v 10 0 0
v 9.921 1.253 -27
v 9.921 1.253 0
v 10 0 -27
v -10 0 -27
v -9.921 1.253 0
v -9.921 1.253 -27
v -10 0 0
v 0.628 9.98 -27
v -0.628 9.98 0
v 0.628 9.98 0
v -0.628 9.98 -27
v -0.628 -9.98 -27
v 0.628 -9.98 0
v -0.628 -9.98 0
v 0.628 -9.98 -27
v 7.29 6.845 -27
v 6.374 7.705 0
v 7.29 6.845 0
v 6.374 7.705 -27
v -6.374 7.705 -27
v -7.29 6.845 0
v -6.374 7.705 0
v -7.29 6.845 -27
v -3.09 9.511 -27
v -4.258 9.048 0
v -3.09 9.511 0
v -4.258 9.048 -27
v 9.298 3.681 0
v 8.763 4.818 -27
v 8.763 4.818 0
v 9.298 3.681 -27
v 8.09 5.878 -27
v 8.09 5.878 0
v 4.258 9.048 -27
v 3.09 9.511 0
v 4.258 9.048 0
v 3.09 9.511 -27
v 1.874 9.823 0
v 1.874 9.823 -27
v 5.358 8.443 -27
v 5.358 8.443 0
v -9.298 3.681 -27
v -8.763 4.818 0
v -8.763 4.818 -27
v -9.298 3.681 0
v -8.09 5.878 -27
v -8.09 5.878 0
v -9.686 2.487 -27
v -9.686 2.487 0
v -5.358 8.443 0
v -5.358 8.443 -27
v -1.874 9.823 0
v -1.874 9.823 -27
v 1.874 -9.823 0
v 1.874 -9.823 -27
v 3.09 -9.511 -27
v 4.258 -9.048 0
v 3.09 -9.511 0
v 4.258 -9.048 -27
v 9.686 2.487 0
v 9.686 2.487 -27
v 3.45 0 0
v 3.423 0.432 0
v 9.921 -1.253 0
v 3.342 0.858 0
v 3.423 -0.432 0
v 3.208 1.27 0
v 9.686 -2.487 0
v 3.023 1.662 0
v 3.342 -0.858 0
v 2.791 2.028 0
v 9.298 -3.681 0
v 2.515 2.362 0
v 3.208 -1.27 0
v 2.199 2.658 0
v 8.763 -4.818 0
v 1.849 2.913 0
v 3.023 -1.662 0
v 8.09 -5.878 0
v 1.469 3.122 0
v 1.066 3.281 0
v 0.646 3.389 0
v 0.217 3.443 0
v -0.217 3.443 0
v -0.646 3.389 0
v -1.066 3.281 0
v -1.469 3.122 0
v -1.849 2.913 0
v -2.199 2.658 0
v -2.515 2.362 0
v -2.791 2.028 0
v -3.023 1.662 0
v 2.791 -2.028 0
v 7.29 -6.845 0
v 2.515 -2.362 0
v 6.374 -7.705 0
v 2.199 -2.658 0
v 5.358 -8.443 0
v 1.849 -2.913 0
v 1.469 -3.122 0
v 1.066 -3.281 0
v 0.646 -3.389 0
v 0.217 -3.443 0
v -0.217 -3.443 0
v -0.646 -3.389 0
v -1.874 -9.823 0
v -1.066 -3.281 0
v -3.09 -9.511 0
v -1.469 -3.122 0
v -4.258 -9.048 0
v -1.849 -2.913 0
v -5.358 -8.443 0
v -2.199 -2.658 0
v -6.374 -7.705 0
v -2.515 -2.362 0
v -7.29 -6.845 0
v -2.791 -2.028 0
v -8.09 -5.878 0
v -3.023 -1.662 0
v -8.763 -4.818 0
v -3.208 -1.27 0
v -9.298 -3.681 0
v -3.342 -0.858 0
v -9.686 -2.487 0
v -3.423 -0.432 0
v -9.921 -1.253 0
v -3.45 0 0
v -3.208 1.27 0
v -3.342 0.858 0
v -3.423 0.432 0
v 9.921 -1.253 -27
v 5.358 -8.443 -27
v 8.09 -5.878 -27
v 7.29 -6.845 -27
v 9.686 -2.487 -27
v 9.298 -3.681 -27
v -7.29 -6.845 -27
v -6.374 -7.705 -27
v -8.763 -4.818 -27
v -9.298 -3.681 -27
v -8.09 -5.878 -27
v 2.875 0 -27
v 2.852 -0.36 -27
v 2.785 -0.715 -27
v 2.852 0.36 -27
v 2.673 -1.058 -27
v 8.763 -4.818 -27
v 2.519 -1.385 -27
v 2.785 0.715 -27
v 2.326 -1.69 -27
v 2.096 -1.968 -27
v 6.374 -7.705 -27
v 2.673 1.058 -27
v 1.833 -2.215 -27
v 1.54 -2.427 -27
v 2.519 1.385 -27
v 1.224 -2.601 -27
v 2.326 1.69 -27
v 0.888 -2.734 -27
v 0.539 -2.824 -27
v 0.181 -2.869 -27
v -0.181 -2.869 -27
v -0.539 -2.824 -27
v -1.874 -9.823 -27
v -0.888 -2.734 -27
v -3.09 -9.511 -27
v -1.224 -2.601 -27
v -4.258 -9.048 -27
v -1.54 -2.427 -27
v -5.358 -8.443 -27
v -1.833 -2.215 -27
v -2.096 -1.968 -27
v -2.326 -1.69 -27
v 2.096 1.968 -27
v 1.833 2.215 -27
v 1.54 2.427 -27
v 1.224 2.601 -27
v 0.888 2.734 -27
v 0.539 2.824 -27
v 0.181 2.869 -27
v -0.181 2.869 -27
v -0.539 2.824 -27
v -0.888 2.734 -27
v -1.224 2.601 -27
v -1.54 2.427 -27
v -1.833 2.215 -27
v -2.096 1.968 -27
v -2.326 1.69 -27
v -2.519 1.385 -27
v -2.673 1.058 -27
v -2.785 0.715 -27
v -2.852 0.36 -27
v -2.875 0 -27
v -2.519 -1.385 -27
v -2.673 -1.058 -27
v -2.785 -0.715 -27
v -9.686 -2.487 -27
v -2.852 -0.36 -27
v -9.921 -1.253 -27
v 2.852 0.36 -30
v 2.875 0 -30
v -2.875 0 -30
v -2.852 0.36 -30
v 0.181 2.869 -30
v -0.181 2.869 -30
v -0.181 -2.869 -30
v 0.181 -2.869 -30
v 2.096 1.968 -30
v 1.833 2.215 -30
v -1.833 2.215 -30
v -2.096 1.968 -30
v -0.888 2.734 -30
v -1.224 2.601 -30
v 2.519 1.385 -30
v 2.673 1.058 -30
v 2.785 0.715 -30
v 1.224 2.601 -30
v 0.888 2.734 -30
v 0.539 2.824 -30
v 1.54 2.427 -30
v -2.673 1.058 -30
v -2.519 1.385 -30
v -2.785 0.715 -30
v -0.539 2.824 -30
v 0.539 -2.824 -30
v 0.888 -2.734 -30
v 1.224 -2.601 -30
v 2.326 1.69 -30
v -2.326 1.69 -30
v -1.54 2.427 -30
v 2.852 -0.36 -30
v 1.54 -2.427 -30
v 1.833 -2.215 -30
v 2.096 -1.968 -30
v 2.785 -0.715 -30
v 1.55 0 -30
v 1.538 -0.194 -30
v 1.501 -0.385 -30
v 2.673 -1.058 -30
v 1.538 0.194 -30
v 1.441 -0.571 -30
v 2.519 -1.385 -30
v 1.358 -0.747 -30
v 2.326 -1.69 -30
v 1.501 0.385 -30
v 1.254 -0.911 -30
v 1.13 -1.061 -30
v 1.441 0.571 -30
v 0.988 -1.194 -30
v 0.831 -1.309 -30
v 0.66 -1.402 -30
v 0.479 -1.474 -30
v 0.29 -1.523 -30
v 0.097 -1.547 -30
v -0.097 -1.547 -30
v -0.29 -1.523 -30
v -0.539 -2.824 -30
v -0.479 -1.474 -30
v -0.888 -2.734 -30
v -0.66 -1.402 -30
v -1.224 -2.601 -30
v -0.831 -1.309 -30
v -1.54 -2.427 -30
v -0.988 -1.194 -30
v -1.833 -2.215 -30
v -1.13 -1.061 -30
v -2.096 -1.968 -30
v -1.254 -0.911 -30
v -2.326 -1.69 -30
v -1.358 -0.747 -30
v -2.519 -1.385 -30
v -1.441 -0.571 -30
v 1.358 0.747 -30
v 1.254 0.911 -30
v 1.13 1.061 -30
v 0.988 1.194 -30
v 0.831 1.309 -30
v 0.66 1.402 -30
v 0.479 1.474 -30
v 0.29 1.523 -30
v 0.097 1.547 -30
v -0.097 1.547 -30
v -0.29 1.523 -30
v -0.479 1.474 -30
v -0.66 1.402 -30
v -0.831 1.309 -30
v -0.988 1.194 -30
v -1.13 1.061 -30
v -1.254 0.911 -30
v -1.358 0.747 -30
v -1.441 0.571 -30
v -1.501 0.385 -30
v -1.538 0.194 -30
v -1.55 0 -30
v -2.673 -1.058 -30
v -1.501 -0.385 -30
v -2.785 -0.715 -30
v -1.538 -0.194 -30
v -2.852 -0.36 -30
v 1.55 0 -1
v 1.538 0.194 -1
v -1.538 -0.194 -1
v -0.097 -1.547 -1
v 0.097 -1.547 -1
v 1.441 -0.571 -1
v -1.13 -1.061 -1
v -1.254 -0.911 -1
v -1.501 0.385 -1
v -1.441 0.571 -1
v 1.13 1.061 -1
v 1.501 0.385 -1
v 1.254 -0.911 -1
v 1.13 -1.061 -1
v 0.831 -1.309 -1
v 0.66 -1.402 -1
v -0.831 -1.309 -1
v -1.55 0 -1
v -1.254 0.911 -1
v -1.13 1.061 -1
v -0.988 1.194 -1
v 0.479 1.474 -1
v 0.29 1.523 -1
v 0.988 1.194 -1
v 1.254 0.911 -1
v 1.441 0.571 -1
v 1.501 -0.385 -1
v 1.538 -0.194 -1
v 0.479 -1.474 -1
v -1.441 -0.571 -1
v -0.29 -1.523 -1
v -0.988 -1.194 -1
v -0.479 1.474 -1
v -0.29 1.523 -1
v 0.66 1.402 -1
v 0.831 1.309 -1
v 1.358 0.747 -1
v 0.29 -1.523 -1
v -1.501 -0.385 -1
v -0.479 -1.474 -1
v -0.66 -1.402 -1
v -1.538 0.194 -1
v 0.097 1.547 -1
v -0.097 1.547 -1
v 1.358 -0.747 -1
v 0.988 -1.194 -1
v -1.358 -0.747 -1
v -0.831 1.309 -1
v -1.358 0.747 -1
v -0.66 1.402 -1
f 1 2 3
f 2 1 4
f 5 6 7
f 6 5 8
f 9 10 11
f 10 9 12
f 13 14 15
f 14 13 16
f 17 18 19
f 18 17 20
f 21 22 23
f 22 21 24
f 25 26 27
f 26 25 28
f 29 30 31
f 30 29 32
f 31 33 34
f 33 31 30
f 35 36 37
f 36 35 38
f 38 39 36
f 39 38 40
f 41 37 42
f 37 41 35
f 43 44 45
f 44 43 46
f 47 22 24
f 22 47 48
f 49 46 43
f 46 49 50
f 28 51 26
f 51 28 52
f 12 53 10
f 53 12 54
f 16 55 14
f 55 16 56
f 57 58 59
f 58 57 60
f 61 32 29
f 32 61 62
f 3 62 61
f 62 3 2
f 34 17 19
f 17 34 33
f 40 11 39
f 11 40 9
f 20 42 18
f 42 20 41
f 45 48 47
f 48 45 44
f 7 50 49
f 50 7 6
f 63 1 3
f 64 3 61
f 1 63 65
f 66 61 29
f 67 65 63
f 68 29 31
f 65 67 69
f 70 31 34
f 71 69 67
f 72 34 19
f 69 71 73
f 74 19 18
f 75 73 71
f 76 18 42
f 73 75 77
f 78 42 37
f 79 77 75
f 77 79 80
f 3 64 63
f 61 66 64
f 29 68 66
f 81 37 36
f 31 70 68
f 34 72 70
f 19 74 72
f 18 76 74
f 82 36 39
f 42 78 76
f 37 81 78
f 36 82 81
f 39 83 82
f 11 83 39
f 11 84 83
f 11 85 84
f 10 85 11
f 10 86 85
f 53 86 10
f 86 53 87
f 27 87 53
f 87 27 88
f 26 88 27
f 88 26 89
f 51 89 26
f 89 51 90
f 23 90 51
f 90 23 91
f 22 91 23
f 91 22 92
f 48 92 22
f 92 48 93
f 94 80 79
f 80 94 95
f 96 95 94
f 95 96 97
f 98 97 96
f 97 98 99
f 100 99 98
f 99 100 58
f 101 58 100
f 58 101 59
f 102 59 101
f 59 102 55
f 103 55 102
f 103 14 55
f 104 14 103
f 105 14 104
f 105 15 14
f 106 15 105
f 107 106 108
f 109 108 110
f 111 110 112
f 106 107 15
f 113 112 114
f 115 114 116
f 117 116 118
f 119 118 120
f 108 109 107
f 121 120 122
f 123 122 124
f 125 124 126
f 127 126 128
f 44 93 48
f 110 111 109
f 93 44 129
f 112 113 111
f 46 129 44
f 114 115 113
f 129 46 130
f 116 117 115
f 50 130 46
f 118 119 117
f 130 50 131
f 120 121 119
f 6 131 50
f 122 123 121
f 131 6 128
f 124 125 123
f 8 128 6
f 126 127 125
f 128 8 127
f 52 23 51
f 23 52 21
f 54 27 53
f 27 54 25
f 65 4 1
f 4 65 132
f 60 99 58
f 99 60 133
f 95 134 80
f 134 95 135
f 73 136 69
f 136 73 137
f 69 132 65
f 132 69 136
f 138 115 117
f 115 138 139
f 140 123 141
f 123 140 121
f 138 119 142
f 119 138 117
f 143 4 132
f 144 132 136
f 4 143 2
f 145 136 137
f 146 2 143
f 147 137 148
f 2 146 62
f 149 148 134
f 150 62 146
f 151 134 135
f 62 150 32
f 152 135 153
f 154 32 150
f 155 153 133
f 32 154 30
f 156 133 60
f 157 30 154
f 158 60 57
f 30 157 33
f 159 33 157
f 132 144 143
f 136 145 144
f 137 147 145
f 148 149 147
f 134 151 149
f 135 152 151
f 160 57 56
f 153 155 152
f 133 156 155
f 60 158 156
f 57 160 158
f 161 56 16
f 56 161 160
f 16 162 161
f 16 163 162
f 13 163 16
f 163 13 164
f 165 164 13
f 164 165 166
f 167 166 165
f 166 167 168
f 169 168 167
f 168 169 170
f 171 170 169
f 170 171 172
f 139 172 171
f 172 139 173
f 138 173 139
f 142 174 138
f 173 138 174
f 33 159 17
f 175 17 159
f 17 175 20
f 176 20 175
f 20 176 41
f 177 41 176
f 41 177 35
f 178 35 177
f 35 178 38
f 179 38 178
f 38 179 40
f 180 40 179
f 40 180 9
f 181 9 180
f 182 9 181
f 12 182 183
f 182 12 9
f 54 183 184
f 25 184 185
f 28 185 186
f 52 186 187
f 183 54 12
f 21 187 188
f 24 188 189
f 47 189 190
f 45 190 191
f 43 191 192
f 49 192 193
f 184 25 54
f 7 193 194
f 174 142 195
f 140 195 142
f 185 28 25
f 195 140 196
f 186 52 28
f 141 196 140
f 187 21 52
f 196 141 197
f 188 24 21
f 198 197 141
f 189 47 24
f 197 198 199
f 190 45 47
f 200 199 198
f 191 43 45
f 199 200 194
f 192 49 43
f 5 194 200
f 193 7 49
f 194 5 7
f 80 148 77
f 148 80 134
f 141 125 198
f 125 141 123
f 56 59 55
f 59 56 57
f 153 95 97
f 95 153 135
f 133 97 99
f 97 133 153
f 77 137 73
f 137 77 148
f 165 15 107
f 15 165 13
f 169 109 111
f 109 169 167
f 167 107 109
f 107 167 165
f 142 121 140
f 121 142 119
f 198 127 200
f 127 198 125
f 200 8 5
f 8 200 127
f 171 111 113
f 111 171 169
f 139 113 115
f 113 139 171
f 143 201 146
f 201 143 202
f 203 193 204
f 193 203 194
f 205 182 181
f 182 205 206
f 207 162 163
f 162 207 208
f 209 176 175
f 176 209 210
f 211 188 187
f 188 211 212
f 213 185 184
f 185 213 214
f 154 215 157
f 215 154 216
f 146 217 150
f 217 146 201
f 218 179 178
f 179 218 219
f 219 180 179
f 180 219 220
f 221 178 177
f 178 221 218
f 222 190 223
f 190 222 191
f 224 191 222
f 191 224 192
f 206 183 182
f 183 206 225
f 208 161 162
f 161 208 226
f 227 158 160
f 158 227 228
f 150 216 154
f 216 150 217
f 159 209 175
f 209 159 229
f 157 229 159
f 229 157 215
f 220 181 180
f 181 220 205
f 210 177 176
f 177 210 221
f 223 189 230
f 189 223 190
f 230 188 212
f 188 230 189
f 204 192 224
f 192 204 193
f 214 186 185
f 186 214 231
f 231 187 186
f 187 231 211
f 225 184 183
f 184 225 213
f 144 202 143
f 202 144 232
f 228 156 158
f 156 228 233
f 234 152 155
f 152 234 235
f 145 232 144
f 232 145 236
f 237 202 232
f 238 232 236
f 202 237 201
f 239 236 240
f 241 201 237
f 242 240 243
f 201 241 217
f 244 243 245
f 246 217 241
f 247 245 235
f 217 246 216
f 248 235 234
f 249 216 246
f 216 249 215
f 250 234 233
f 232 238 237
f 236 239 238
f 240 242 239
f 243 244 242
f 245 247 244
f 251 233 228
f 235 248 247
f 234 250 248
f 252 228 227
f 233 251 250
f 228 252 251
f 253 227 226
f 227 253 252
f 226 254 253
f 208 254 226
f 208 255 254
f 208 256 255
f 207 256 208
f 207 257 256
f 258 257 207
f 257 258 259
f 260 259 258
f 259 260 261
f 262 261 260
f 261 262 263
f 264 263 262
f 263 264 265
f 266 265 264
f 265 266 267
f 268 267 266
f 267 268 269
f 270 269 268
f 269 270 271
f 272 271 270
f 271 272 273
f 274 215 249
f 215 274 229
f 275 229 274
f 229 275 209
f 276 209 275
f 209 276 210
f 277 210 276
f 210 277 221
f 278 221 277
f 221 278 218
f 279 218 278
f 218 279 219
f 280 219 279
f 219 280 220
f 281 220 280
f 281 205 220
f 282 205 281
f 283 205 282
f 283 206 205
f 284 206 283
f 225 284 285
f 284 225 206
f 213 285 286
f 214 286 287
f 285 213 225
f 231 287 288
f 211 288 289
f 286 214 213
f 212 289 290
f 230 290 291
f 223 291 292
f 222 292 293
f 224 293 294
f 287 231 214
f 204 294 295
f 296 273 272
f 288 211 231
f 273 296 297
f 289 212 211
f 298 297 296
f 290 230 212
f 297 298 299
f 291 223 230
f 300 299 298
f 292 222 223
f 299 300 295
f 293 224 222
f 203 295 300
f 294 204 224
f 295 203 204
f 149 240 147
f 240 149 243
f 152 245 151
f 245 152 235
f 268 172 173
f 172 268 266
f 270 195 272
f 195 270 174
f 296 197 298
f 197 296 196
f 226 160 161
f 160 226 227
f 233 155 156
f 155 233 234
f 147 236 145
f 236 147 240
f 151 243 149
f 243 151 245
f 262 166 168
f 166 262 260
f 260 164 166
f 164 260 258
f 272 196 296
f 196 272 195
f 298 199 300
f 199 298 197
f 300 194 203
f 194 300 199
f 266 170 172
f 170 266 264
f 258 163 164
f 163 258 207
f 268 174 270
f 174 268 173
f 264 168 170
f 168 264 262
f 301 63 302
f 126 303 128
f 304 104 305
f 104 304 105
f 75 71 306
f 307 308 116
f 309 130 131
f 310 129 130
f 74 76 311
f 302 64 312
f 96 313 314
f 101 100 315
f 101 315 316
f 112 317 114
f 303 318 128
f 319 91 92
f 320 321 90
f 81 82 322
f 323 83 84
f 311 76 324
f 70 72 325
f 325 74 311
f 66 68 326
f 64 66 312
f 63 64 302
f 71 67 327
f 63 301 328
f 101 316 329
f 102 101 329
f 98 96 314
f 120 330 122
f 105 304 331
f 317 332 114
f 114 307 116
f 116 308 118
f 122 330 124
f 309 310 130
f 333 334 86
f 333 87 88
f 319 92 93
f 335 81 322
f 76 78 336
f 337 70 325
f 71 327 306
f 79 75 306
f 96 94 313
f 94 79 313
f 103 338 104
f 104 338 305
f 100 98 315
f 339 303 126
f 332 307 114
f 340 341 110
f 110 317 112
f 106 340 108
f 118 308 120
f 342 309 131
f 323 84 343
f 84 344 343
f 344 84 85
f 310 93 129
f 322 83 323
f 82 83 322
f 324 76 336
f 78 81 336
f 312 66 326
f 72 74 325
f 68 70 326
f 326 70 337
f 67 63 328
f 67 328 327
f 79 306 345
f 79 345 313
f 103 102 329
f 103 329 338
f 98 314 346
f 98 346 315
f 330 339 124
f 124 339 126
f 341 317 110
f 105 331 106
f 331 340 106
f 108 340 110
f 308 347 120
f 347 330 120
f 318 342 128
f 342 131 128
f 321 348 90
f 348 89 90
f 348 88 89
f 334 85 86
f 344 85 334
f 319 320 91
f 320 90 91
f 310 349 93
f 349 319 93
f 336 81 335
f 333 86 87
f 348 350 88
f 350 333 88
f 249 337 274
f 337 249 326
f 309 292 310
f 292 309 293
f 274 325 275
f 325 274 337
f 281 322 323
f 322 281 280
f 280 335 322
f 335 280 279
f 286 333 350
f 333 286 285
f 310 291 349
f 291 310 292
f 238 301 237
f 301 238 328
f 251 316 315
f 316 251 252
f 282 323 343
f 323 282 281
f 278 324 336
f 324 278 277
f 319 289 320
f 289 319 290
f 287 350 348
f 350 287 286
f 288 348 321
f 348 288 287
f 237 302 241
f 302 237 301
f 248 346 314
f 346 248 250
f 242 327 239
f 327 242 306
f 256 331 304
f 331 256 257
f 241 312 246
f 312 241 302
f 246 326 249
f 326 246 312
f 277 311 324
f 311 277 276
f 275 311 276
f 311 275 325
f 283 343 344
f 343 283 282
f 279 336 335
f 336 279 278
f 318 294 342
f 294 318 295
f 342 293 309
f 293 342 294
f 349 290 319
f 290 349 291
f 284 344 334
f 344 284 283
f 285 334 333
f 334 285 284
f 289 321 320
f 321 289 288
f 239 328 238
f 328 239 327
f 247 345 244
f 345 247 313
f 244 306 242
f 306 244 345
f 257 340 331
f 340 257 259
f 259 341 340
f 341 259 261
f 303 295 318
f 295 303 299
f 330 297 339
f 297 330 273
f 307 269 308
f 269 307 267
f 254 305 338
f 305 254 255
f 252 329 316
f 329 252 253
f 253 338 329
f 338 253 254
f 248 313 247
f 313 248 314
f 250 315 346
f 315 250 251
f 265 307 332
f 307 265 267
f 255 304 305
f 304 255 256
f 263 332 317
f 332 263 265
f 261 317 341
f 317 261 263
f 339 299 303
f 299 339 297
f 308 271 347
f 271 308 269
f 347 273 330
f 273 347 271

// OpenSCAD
$fn = 50;


difference() {
	union() {
		translate(v = [0, 0, -27.0000000000]) {
			cylinder(h = 27, r = 10.0000000000);
		}
		#translate(v = [0, 0, -30.0000000000]) {
			cylinder(h = 30, r = 2.8750000000);
		}
	}
	union() {
		translate(v = [0, 0, 0]) {
			rotate(a = [0, 0, 0]) {
				difference() {
					union() {
						translate(v = [0, 0, -30.0000000000]) {
							cylinder(h = 30, r = 1.2500000000);
						}
						translate(v = [0, 0, -1.0000000000]) {
							cylinder(h = 1.0000000000, r1 = 1.5500000000, r2 = 3.4500000000);
						}
						translate(v = [0, 0, -30.0000000000]) {
							cylinder(h = 30, r = 1.5500000000);
						}
						translate(v = [0, 0, -30.0000000000]) {
							cylinder(h = 30, r = 1.2500000000);
						}
					}
					union();
				}
			}
		}
	}
}
